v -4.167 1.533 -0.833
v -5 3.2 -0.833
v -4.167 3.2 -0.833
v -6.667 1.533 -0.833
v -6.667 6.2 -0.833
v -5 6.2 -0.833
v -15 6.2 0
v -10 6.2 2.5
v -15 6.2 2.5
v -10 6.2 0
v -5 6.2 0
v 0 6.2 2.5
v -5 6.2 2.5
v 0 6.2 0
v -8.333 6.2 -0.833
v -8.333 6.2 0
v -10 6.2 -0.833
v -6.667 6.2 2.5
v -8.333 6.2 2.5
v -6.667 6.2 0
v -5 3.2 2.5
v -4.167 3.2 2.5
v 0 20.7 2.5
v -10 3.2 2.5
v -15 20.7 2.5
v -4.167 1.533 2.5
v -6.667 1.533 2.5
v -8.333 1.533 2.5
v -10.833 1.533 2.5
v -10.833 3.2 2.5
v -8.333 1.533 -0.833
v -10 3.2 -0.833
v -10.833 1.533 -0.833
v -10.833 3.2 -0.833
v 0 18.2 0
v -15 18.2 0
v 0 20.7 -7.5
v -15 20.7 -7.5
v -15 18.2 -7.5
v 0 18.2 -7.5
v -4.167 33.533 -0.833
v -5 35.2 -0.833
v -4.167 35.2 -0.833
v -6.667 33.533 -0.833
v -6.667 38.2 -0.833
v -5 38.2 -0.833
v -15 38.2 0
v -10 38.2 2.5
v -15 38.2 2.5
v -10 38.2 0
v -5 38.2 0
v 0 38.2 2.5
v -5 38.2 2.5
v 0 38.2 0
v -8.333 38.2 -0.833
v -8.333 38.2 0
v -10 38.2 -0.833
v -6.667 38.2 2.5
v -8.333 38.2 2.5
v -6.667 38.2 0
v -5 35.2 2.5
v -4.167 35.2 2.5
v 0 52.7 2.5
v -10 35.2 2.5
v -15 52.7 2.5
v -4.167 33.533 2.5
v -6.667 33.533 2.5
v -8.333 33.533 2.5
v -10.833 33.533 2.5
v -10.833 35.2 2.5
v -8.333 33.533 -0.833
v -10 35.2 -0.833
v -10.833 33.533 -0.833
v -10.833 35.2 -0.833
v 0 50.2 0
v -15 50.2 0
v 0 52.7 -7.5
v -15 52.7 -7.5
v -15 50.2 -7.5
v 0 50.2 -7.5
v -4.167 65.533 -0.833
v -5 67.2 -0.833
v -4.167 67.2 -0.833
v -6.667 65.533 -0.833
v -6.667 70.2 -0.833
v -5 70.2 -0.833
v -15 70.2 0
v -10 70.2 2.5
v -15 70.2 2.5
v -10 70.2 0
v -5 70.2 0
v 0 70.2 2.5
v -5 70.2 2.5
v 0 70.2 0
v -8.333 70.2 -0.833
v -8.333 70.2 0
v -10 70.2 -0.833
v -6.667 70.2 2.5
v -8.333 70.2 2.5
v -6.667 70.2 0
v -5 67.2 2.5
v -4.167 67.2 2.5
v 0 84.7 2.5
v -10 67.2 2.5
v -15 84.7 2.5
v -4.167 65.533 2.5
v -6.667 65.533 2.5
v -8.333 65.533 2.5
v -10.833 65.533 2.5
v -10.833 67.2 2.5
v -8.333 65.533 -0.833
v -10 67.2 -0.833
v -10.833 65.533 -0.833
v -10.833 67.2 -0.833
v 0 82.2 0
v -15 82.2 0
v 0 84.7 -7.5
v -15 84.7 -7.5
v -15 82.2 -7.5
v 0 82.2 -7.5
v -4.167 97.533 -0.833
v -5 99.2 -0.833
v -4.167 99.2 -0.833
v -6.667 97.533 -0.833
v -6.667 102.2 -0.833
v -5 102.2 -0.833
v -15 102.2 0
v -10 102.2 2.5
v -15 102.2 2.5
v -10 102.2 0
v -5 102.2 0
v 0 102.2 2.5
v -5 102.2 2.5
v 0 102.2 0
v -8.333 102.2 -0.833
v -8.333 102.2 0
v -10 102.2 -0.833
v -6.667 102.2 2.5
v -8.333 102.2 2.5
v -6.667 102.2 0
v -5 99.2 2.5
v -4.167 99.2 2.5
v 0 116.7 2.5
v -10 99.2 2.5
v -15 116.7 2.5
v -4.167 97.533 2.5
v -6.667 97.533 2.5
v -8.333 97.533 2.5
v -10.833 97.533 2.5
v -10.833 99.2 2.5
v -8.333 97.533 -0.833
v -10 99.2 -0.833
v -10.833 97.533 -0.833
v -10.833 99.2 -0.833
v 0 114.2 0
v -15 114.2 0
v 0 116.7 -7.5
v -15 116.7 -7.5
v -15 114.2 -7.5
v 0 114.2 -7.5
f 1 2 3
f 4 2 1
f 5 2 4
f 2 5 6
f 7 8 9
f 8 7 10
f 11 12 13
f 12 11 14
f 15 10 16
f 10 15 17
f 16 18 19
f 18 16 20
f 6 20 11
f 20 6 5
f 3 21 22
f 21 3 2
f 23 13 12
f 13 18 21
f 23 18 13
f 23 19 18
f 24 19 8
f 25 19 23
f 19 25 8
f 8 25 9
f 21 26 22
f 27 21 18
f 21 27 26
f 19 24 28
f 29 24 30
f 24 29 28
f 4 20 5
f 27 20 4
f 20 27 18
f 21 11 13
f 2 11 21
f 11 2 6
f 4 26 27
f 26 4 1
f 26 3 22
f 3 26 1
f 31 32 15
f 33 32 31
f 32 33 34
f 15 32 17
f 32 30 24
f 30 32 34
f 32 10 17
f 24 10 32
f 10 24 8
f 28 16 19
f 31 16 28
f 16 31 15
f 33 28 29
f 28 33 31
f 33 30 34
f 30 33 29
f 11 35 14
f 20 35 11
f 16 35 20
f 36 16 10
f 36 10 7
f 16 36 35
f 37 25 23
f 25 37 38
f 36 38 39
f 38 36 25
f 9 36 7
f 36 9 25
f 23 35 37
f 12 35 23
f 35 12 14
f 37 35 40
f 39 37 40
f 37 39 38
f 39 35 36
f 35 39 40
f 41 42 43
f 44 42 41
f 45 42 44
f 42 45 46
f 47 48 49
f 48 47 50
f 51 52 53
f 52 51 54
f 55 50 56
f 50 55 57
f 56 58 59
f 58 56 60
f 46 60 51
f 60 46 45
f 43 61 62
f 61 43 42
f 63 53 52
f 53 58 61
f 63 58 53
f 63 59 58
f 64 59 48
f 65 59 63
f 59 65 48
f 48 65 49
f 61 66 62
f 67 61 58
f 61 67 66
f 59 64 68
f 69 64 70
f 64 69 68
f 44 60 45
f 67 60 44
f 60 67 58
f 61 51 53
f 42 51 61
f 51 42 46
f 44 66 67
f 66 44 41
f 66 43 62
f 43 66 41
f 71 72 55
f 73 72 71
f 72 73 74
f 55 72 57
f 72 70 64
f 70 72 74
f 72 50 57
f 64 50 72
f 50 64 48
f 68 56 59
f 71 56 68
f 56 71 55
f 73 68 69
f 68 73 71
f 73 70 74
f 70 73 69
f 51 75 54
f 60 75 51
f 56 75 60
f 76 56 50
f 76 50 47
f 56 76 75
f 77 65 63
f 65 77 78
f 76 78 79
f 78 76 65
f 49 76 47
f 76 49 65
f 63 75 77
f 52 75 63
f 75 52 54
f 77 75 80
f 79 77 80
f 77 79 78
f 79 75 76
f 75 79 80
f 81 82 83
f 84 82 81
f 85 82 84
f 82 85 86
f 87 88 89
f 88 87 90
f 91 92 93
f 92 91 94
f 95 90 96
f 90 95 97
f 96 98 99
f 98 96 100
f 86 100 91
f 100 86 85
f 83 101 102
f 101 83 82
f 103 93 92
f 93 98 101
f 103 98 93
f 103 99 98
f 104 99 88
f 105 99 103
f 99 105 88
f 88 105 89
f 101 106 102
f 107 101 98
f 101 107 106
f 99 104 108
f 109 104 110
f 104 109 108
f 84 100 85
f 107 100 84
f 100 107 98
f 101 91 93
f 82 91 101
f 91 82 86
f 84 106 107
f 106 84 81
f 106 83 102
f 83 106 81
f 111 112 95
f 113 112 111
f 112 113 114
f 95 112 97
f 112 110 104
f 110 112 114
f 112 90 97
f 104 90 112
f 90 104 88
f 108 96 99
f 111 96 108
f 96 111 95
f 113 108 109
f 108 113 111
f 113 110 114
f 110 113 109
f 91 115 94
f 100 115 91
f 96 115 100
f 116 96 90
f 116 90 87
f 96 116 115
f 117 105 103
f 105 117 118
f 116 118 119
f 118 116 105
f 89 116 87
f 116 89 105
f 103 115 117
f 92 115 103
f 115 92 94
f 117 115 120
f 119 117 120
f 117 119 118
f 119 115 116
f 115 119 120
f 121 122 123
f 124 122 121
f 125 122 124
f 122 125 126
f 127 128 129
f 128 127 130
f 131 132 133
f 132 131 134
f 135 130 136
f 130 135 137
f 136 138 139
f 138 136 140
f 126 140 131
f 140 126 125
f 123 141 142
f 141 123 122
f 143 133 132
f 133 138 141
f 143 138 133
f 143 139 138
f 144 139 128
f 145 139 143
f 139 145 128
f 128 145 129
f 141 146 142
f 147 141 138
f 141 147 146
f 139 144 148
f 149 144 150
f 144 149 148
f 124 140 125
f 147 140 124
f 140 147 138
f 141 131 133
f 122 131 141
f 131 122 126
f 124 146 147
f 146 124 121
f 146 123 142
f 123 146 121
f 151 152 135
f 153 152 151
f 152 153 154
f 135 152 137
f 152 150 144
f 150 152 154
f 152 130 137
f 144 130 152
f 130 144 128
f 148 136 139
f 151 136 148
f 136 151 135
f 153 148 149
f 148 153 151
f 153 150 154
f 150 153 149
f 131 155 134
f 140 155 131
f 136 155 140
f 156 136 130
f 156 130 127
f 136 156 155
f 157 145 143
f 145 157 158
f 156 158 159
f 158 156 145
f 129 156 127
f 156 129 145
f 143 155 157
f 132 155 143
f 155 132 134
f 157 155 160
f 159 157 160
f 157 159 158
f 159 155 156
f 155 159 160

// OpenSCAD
monocular_diameter = 31.5;
monocular_depth = 10;

phone_width = 75;
phone_height = 165;
phone_depth = 2.5;
phone_strip = 15;
phone_tooth = 5;

cam_x = 22.5;
cam_y = 12;

finger_print_diameter = 11;
finger_print_x = 37.5;
finger_print_y = 25;

clip_height = 12;
clip_length = 5;

module clip() {
    //small tooth no 1
    translate([0, (1/3)*phone_strip, 0])
        cube( [(2/3)*phone_tooth, (1/9)*phone_strip, 1.2*phone_depth] );
    translate([0, (1/3)*phone_strip-(1/18)*phone_strip, -(1/9)*phone_strip])
        cube( [(2/3)*phone_tooth, (3/18)*phone_strip, (1/9)*phone_strip] );

    //small tooth no 2
    translate([0, (1/3)*phone_strip + (2/9)*phone_strip, 0])
        cube( [(2/3)*phone_tooth, (1/9)*phone_strip, 1.2*phone_depth] );
    translate([0, (1/3)*phone_strip + (2/9)*phone_strip, -(1/9)*phone_strip])
        cube( [(2/3)*phone_tooth, (3/18)*phone_strip, (1/9)*phone_strip] );
    
    //body of the clip
    translate( [ 0, 0, 1.2*phone_depth ] )
        cube( [ phone_depth, phone_strip, clip_height+0.5*phone_tooth] );
    
    //head of the clip
    translate( [ 0, 0, 1.2*phone_depth+clip_height ] )
        cube( [ phone_tooth+clip_length, phone_strip, 0.5*phone_tooth] ); 
}

clip_separation = (clip_height+0.5*phone_tooth+phone_depth+phone_strip);

translate([ 0, 0.1*clip_separation, phone_depth] ) rotate( [ 0, 90, 90 ] ) clip();
translate([ 0, 1.1*clip_separation, phone_depth] ) rotate( [ 0, 90, 90 ] ) clip();
translate([ 0, 2.1*clip_separation, phone_depth] ) rotate( [ 0, 90, 90 ] ) clip();
translate([ 0, 3.1*clip_separation, phone_depth] ) rotate( [ 0, 90, 90 ] ) clip();
